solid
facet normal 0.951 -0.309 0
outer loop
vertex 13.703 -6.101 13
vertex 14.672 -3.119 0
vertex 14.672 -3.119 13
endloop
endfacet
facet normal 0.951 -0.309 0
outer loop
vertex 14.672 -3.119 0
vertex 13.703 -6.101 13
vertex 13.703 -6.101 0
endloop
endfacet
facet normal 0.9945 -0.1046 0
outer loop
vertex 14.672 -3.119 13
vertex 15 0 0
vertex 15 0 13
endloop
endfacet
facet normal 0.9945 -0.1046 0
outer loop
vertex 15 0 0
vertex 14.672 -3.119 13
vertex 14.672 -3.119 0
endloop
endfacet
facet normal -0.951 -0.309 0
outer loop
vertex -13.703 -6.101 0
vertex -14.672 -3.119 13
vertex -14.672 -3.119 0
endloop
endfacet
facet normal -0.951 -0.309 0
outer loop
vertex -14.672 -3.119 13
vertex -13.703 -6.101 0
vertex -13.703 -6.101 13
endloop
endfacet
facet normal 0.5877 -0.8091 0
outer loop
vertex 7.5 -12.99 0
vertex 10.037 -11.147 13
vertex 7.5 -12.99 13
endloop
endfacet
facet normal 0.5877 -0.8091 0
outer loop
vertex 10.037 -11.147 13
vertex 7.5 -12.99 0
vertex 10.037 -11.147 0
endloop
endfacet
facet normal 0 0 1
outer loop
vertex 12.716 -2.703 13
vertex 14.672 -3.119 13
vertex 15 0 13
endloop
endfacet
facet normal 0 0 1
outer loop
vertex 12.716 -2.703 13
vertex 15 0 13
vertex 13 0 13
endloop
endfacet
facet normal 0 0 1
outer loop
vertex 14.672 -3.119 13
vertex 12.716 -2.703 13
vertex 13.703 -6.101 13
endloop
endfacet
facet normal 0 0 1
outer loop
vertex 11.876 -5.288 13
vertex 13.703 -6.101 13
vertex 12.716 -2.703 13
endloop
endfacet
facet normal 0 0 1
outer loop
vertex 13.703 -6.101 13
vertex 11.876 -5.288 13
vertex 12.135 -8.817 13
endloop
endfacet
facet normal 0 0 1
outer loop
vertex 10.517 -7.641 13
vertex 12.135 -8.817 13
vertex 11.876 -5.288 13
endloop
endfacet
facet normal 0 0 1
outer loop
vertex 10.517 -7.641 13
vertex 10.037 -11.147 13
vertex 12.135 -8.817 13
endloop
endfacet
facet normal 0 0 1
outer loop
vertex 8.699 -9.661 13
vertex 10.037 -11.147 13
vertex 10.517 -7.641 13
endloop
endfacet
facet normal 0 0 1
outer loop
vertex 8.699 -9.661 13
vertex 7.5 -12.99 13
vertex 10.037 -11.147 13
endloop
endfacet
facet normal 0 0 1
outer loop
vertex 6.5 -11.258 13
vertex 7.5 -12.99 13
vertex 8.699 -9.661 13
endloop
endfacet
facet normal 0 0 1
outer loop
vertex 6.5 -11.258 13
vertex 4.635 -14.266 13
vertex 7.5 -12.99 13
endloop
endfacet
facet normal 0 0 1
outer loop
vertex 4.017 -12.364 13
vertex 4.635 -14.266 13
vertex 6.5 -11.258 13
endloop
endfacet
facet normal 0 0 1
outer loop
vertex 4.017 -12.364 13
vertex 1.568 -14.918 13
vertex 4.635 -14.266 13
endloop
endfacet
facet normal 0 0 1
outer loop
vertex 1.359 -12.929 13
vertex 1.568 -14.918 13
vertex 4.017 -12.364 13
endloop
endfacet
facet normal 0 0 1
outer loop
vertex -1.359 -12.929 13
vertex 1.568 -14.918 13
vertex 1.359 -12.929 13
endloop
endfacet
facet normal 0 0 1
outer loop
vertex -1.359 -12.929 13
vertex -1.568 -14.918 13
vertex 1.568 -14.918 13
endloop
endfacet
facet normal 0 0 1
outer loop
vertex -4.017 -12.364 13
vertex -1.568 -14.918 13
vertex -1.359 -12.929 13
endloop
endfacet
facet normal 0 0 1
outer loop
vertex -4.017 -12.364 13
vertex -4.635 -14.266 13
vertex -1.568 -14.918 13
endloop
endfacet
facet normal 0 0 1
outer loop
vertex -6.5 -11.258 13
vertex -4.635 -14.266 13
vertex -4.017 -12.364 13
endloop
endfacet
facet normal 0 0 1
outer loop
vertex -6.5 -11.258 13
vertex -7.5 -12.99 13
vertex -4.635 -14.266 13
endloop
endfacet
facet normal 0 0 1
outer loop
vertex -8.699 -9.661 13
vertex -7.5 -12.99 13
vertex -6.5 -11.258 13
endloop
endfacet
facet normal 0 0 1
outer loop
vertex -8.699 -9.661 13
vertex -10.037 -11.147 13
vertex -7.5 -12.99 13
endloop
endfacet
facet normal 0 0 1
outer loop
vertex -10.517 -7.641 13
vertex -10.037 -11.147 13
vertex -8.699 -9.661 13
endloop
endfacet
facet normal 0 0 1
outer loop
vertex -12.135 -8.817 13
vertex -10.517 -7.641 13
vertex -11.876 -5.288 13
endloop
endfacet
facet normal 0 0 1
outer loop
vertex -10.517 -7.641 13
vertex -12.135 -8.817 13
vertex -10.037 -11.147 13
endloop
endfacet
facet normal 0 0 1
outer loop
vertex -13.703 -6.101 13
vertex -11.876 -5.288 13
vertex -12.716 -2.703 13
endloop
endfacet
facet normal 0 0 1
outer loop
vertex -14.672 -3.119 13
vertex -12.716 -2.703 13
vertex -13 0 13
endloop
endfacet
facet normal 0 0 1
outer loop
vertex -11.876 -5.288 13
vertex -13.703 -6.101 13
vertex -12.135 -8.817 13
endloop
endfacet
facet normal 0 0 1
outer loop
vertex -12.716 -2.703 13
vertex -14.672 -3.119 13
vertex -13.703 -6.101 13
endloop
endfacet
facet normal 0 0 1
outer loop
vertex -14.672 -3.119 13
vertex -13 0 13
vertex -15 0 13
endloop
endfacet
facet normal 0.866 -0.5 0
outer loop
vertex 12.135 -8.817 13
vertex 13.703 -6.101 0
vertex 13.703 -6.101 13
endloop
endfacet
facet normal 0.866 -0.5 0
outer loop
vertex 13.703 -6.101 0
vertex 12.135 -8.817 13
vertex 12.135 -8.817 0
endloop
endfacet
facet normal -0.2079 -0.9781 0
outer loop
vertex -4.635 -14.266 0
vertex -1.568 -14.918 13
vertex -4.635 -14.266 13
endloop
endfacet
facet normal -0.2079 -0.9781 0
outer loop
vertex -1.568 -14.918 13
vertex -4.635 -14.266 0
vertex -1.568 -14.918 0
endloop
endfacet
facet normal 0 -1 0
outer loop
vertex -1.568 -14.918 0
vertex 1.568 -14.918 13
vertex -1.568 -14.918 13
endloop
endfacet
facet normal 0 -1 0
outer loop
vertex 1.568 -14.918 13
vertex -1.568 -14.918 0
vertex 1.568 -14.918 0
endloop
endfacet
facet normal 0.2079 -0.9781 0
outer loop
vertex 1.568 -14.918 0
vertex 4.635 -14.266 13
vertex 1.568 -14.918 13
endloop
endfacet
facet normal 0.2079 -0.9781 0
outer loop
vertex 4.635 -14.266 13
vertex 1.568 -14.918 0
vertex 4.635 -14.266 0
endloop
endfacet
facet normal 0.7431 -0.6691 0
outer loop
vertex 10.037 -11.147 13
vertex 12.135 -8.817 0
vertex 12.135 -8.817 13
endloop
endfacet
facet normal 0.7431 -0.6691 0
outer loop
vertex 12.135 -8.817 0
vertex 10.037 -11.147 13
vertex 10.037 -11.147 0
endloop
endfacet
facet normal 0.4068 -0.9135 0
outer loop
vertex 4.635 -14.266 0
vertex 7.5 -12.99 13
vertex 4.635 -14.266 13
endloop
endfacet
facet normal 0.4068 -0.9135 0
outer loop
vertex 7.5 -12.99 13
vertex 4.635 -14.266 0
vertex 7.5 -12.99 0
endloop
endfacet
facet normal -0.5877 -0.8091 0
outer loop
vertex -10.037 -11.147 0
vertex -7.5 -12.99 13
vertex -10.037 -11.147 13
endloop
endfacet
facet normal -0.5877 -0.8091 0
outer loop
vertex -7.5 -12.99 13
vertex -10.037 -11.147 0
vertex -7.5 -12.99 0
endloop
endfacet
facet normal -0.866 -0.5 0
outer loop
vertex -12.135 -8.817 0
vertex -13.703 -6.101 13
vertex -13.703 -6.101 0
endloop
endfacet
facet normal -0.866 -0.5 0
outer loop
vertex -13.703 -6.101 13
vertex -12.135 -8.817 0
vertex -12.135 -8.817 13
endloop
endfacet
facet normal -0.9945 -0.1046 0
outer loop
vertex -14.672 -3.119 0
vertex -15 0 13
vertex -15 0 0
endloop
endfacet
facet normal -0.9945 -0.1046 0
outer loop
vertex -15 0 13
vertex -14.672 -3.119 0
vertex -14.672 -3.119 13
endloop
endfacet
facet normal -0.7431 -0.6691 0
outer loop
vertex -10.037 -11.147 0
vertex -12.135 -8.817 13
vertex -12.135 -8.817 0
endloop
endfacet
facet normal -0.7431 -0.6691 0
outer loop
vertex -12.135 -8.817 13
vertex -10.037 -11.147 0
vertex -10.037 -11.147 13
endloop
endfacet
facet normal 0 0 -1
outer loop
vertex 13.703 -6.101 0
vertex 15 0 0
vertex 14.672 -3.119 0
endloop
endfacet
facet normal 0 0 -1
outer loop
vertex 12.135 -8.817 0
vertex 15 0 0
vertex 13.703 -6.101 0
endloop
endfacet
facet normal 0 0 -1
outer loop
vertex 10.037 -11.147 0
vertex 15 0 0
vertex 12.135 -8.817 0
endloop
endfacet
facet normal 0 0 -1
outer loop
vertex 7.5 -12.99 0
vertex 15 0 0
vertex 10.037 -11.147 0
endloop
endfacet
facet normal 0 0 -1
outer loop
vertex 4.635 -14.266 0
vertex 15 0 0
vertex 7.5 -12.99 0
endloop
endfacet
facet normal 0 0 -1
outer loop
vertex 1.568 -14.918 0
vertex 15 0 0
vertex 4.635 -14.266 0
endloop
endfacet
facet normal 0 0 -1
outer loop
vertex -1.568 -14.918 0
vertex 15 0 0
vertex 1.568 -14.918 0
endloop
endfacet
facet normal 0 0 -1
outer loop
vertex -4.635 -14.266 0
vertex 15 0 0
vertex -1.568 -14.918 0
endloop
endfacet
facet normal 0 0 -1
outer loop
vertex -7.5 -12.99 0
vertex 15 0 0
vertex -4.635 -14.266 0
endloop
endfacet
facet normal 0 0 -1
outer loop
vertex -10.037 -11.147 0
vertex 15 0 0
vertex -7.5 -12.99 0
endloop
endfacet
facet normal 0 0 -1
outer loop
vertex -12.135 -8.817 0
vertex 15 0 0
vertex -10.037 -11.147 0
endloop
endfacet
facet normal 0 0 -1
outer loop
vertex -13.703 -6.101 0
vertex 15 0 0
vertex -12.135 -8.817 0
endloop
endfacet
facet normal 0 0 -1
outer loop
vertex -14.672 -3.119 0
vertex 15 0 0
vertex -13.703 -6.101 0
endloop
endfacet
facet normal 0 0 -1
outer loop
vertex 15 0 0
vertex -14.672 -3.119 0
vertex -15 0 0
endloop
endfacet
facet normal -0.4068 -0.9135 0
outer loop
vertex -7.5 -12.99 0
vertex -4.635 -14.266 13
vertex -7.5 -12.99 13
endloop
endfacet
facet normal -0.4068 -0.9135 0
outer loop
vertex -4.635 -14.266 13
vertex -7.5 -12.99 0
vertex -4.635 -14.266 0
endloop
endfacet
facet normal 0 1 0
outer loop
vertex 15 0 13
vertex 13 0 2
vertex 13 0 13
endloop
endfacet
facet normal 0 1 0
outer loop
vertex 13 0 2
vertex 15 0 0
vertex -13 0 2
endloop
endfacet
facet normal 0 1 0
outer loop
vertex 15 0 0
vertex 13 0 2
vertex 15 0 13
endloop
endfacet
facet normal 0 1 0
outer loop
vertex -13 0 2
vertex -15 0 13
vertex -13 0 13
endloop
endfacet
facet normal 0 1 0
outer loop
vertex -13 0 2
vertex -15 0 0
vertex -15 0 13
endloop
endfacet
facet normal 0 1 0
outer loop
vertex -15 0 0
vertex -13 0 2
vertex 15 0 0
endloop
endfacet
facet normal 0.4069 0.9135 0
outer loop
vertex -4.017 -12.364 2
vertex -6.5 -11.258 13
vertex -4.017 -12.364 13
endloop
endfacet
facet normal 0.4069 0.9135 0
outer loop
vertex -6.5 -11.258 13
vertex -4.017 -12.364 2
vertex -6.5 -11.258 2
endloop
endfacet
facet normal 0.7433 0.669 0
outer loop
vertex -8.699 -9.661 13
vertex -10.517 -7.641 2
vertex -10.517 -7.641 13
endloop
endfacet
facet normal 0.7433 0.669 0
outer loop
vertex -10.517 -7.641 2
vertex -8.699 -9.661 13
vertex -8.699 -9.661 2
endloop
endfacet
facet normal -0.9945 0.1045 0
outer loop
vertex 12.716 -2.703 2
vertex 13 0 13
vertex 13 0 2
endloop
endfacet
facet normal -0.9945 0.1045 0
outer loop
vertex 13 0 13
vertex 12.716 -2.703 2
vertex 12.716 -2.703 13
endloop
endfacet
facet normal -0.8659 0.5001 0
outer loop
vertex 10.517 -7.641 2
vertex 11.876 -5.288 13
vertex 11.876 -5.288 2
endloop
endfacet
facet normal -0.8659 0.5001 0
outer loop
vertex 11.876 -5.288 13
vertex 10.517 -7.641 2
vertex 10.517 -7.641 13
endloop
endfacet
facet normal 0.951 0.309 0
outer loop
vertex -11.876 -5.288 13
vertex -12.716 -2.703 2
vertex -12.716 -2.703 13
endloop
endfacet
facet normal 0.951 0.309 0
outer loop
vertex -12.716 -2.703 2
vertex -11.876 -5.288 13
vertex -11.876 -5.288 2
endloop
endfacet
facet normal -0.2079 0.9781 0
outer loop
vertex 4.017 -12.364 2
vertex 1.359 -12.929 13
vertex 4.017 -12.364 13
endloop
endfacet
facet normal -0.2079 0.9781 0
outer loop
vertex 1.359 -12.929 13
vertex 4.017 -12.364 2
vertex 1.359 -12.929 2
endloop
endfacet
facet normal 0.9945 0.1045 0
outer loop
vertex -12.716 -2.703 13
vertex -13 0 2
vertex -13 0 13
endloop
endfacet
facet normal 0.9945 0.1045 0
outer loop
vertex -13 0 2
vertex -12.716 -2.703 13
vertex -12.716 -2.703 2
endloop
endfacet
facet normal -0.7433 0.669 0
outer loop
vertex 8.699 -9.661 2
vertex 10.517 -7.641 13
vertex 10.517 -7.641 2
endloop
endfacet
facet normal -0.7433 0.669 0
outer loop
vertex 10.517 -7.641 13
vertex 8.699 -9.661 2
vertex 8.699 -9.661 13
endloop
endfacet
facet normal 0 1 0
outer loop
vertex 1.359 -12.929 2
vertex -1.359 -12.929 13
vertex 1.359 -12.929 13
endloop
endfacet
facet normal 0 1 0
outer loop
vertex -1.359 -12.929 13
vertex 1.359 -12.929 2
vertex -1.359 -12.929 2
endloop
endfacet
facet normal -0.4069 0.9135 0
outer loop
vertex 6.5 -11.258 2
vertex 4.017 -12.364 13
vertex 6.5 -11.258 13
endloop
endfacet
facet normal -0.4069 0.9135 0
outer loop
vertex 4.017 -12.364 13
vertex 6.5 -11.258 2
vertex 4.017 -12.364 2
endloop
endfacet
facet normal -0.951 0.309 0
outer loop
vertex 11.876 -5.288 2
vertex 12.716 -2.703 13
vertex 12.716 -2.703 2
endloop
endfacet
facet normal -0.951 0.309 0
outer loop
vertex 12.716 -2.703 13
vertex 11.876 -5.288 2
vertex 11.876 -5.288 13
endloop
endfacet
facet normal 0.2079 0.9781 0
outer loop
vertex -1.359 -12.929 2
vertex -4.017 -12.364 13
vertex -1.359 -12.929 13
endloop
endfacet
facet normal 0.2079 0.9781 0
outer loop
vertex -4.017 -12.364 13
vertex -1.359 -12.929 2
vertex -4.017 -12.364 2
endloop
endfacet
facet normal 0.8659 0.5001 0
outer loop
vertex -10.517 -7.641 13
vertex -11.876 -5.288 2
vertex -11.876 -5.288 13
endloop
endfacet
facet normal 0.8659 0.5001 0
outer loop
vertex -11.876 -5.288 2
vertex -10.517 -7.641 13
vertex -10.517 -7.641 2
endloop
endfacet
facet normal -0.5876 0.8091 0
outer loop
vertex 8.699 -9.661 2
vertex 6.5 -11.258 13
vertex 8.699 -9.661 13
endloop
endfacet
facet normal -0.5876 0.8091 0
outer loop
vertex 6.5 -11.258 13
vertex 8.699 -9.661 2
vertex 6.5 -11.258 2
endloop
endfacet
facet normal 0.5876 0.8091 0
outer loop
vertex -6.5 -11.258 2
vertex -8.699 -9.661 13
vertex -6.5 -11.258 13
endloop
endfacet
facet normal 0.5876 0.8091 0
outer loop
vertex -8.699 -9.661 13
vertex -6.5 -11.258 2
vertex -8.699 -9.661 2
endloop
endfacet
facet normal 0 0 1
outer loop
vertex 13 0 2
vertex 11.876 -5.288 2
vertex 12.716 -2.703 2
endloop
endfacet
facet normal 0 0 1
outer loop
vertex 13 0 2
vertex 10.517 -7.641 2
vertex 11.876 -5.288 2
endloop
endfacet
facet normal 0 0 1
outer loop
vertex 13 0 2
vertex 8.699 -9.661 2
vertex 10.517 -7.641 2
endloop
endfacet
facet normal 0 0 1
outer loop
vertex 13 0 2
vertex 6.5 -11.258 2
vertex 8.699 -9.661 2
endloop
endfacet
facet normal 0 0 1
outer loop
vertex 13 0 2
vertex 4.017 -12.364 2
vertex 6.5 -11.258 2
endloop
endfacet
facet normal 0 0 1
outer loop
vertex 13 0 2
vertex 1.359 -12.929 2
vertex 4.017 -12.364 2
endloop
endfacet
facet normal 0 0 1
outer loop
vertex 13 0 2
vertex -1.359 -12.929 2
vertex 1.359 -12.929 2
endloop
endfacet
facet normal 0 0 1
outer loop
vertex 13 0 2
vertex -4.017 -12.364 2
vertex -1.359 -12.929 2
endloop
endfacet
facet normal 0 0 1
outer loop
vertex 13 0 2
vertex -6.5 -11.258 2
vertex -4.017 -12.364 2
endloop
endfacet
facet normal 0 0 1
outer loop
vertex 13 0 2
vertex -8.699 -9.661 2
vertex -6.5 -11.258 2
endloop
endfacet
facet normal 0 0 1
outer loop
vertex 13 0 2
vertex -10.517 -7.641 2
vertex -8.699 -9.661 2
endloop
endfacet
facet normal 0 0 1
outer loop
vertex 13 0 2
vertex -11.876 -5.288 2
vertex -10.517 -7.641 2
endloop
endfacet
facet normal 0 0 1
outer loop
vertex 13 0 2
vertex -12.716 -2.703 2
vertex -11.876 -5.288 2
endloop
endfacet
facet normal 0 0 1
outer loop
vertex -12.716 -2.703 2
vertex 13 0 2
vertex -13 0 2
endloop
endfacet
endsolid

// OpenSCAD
difference(){
cylinder(d=30,h=11+2);
translate([-25,0,-1])
cube(50);
translate([0,0,2])
cylinder(d=26,h=12);
}
